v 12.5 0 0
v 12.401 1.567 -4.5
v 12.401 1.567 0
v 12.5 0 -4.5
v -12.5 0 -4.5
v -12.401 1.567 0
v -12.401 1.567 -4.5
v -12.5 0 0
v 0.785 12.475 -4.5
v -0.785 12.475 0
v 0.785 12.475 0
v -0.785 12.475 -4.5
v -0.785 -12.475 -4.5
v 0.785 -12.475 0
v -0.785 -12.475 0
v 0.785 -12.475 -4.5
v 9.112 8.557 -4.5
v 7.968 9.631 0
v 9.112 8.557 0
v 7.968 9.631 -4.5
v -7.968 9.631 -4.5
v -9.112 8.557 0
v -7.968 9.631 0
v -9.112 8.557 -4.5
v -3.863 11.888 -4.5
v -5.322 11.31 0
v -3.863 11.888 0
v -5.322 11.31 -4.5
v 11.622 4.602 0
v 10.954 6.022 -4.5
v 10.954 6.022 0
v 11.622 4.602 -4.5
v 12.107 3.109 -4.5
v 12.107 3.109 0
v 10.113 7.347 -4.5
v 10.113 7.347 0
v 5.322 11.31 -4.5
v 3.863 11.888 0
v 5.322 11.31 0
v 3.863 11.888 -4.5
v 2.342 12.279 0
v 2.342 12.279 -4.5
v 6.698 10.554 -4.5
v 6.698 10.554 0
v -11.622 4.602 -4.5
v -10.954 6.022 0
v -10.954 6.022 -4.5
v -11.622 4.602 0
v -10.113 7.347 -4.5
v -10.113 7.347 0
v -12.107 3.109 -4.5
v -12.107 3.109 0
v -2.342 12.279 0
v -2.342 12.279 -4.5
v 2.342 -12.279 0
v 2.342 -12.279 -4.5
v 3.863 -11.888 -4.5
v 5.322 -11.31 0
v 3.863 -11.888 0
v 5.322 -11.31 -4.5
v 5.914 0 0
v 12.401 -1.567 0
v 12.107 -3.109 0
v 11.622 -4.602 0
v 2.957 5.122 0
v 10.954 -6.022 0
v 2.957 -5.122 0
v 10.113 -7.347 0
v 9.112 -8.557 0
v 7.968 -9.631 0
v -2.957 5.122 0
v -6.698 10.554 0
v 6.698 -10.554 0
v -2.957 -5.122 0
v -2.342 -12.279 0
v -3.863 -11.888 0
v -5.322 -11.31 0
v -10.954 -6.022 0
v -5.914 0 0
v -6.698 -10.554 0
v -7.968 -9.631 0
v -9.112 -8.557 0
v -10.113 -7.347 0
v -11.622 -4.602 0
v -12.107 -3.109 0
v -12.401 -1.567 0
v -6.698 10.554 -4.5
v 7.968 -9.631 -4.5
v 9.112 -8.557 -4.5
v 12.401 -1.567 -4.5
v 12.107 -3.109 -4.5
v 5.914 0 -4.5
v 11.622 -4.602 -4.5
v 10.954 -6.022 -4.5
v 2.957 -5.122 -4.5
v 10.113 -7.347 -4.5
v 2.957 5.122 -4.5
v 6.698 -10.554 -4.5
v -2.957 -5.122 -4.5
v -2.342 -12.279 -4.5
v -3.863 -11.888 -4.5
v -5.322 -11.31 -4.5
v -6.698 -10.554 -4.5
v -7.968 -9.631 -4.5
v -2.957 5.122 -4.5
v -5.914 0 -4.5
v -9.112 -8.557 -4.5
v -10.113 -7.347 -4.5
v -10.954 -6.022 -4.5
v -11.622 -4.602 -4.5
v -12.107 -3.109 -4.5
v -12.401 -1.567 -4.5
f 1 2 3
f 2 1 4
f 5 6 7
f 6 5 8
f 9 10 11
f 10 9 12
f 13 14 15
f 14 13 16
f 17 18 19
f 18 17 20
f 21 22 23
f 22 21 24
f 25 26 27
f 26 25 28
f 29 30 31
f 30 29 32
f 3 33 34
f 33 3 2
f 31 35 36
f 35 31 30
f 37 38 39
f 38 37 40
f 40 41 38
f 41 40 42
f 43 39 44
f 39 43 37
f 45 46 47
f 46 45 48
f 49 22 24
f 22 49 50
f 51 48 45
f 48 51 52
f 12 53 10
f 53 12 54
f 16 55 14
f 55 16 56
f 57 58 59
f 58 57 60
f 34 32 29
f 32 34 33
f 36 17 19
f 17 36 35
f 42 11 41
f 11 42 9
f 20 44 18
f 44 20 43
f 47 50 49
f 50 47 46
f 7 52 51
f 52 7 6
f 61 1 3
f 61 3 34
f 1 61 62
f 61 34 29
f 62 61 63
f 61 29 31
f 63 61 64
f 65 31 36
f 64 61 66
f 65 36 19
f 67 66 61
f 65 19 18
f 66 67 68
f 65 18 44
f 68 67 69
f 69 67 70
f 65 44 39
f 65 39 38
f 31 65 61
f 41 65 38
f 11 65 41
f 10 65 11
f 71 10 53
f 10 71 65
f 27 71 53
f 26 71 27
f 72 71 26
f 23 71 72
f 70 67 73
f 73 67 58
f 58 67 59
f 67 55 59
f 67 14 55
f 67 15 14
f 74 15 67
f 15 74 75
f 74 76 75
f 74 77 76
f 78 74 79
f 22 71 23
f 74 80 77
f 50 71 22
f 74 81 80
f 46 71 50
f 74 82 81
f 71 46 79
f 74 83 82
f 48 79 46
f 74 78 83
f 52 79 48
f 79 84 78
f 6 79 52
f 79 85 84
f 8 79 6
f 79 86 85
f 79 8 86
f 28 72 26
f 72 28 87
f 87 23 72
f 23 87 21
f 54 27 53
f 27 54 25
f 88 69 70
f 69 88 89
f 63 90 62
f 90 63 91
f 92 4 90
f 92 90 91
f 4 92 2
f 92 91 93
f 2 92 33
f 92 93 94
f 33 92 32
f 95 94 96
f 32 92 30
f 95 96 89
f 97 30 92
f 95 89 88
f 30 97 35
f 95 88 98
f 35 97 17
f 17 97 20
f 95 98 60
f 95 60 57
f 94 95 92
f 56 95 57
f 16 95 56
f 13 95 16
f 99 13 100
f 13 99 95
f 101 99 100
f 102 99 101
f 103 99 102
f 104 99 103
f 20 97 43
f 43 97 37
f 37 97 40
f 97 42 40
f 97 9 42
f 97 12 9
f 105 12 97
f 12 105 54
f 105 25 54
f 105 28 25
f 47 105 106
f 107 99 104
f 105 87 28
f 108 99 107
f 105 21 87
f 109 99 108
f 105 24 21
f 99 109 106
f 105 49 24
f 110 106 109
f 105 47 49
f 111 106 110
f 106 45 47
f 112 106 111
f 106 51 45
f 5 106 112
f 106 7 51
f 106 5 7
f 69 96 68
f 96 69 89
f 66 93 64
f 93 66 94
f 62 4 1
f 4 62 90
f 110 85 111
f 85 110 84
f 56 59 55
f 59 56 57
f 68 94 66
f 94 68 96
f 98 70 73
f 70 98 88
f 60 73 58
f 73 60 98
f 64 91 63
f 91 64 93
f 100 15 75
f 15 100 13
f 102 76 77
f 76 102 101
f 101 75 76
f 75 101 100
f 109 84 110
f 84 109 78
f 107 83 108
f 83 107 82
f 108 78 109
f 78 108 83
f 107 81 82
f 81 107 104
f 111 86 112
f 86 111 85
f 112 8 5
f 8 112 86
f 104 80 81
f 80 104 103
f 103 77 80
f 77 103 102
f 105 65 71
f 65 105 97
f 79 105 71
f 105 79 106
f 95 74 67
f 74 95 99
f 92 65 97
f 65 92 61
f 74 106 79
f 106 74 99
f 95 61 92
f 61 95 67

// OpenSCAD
$fn = 50;

difference() {
	union() {
		translate(v = [0, 0, -4.5]) {
			cylinder(h = 4.5, r = 12.5);
		}
		#translate(v = [0, 0, -6.0]) {
			cylinder(h = 6, r = 2.875);
		}
	}
	union() {
		translate(v = [0, 0, 0]) {
			rotate(a = [0, 0, 0]) {
				difference() {
					union() {
						translate(v = [0, 0, -5]) {
							linear_extrude(height = 5) {
								polygon(points = [[5.914249999999999, 0.0], [2.957125, 5.1218907443321156], [-2.9571249999999982, 5.1218907443321156], [-5.914249999999999, 7.242867331857232e-16], [-2.9571250000000022, -5.121890744332115], [2.9571249999999956, -5.121890744332118]]);
							}
						}
					}
					union();
				}
			}
		}
		#translate(v = [0, 0, -100.0]) {
			cylinder(h = 200, r = 3.25);
		}
	}
}
